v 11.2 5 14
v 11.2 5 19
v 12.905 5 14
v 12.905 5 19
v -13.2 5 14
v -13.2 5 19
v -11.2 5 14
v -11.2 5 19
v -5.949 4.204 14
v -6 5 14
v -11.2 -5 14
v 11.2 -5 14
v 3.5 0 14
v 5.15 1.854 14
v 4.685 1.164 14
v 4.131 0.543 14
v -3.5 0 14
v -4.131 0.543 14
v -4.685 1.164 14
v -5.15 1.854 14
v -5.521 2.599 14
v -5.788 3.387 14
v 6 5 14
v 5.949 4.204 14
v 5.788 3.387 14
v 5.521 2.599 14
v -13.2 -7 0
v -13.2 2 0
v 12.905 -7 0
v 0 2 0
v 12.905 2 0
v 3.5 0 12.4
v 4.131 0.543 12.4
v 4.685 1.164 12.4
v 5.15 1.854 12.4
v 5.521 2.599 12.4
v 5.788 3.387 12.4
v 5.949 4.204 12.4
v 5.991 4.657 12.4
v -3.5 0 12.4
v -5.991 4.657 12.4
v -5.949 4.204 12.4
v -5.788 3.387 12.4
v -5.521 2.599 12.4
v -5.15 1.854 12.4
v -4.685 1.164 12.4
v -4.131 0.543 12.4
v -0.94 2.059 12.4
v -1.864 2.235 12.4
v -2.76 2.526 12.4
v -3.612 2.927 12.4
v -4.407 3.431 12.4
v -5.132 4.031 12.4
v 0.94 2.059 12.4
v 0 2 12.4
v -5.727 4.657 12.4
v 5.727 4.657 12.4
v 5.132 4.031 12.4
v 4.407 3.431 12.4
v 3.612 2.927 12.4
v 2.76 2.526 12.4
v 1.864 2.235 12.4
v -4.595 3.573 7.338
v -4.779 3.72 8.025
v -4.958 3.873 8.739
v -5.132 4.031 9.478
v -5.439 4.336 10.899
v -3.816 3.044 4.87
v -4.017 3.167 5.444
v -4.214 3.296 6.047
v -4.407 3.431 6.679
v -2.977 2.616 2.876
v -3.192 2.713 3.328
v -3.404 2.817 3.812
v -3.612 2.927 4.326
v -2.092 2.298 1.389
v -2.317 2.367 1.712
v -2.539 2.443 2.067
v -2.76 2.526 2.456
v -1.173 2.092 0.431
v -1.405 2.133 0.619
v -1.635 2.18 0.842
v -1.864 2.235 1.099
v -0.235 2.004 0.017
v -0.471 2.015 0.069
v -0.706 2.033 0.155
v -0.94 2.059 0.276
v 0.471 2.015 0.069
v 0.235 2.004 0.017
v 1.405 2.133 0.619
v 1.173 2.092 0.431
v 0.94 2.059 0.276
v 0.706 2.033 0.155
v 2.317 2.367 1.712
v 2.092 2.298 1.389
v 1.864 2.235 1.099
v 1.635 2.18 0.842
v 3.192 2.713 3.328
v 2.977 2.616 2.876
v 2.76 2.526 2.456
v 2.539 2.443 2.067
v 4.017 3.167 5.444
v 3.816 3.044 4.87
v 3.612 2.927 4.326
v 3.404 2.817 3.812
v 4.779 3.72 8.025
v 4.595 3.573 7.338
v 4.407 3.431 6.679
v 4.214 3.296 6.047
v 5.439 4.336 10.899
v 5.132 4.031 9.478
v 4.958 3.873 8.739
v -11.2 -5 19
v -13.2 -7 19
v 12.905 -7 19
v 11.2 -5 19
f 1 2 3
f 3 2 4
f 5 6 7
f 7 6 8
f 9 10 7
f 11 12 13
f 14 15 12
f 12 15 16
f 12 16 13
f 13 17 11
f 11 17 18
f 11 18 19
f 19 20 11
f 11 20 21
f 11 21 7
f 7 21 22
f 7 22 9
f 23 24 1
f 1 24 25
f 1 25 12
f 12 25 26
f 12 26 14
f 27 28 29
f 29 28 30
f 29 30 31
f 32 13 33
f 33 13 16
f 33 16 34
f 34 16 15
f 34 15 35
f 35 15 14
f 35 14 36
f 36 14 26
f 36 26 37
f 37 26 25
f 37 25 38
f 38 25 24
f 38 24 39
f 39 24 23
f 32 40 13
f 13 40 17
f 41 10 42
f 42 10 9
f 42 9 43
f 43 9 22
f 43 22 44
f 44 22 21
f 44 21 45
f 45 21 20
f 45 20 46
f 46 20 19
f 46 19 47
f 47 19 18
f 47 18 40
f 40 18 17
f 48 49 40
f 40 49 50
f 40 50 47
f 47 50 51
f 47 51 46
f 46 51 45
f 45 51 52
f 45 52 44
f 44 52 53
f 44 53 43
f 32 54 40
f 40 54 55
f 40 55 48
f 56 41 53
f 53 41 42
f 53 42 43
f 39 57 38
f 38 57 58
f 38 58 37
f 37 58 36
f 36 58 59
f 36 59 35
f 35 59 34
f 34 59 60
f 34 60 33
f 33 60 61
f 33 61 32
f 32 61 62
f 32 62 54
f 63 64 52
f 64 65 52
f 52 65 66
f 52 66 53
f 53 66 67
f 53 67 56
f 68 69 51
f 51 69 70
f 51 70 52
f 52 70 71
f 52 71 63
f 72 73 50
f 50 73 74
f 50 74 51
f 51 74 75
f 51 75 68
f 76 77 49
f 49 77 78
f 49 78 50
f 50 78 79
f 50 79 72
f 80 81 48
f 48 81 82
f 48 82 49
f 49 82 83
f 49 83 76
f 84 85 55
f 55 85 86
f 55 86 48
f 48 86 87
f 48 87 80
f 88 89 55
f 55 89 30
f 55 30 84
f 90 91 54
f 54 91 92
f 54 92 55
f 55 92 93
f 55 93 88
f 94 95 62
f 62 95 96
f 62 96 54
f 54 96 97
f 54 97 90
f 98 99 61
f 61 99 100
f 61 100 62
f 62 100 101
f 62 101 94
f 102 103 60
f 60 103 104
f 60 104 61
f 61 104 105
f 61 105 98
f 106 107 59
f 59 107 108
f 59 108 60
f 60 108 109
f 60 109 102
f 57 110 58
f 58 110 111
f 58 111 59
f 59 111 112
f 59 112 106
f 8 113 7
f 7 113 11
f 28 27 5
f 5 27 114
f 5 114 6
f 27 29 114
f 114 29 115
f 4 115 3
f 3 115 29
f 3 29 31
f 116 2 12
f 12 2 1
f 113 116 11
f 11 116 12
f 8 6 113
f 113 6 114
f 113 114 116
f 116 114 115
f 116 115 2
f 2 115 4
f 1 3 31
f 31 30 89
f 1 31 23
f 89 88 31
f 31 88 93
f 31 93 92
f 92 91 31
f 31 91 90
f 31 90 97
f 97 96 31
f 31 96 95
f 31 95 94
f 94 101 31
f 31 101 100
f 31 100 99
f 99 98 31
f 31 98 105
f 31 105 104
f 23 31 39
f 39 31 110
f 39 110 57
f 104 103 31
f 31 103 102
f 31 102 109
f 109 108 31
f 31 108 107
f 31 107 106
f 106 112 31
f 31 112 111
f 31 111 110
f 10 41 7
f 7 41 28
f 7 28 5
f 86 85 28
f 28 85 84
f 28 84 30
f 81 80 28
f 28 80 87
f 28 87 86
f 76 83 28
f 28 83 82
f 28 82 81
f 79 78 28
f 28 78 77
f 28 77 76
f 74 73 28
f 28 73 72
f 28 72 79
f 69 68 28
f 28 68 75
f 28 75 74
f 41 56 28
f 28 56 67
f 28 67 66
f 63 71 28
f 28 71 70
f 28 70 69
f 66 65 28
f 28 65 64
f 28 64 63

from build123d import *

# Parameters (mm, degrees)
SKETCH2_W           = 22.4
SKETCH2_H           = 10
BOSS_EXTRUDE1_DEPTH = 14
CUT_EXTRUDE2_DEPTH  = 1.6
CUT_EXTRUDE4_DEPTH  = 13.4
BOSS_EXTRUDE2_DEPTH = 19
CUT_EXTRUDE5_DEPTH  = 27.105381484


with BuildPart() as part:
    # Sketch2 → Boss-Extrude1 (new body)
    with BuildSketch(Plane.XY):
        Rectangle(SKETCH2_W, SKETCH2_H)
    extrude(amount=BOSS_EXTRUDE1_DEPTH)

    # Sketch3 → Cut-Extrude2 (cut)
    with BuildSketch(Plane.XY.offset(14)):
        with BuildLine():
            Line((-6, 5), (6, 5))
            ThreePointArc((6, 5), (5.340169944, 2.204915028), (3.5, 0))
            Line((3.5, 0), (-3.5, 0))
            ThreePointArc((-3.5, 0), (-5.340169944, 2.204915028), (-6, 5))
        make_face()
    extrude(amount=-CUT_EXTRUDE2_DEPTH, mode=Mode.SUBTRACT)

    # Sketch5 → Cut-Extrude4 (cut, through all)
    with BuildSketch(Plane.XY.offset(12.4)):
        with BuildLine():
            Line((-6, 5), (6, 5))
            ThreePointArc((6, 5), (0, 2), (-6, 5))
        make_face()
    extrude(amount=-CUT_EXTRUDE4_DEPTH, mode=Mode.SUBTRACT)

    # Sketch6 → Boss-Extrude2 (add)
    with BuildSketch(Plane.XY):
        Polygon((-11.2, 5), (-13.2, 5), (-13.2, -7), (12.905381484, -7), (12.905381484, 5), (11.2, 5), (11.2, -5), (-11.2, -5), align=None)
    extrude(amount=BOSS_EXTRUDE2_DEPTH)

    # Sketch7 → Cut-Extrude5 (cut, through all)
    with BuildSketch(Plane.ZY.offset(13.2)):
        Polygon((0, 5), (14, 5), (0, 2), align=None)
    extrude(amount=-CUT_EXTRUDE5_DEPTH, mode=Mode.SUBTRACT)


solid = part.part
